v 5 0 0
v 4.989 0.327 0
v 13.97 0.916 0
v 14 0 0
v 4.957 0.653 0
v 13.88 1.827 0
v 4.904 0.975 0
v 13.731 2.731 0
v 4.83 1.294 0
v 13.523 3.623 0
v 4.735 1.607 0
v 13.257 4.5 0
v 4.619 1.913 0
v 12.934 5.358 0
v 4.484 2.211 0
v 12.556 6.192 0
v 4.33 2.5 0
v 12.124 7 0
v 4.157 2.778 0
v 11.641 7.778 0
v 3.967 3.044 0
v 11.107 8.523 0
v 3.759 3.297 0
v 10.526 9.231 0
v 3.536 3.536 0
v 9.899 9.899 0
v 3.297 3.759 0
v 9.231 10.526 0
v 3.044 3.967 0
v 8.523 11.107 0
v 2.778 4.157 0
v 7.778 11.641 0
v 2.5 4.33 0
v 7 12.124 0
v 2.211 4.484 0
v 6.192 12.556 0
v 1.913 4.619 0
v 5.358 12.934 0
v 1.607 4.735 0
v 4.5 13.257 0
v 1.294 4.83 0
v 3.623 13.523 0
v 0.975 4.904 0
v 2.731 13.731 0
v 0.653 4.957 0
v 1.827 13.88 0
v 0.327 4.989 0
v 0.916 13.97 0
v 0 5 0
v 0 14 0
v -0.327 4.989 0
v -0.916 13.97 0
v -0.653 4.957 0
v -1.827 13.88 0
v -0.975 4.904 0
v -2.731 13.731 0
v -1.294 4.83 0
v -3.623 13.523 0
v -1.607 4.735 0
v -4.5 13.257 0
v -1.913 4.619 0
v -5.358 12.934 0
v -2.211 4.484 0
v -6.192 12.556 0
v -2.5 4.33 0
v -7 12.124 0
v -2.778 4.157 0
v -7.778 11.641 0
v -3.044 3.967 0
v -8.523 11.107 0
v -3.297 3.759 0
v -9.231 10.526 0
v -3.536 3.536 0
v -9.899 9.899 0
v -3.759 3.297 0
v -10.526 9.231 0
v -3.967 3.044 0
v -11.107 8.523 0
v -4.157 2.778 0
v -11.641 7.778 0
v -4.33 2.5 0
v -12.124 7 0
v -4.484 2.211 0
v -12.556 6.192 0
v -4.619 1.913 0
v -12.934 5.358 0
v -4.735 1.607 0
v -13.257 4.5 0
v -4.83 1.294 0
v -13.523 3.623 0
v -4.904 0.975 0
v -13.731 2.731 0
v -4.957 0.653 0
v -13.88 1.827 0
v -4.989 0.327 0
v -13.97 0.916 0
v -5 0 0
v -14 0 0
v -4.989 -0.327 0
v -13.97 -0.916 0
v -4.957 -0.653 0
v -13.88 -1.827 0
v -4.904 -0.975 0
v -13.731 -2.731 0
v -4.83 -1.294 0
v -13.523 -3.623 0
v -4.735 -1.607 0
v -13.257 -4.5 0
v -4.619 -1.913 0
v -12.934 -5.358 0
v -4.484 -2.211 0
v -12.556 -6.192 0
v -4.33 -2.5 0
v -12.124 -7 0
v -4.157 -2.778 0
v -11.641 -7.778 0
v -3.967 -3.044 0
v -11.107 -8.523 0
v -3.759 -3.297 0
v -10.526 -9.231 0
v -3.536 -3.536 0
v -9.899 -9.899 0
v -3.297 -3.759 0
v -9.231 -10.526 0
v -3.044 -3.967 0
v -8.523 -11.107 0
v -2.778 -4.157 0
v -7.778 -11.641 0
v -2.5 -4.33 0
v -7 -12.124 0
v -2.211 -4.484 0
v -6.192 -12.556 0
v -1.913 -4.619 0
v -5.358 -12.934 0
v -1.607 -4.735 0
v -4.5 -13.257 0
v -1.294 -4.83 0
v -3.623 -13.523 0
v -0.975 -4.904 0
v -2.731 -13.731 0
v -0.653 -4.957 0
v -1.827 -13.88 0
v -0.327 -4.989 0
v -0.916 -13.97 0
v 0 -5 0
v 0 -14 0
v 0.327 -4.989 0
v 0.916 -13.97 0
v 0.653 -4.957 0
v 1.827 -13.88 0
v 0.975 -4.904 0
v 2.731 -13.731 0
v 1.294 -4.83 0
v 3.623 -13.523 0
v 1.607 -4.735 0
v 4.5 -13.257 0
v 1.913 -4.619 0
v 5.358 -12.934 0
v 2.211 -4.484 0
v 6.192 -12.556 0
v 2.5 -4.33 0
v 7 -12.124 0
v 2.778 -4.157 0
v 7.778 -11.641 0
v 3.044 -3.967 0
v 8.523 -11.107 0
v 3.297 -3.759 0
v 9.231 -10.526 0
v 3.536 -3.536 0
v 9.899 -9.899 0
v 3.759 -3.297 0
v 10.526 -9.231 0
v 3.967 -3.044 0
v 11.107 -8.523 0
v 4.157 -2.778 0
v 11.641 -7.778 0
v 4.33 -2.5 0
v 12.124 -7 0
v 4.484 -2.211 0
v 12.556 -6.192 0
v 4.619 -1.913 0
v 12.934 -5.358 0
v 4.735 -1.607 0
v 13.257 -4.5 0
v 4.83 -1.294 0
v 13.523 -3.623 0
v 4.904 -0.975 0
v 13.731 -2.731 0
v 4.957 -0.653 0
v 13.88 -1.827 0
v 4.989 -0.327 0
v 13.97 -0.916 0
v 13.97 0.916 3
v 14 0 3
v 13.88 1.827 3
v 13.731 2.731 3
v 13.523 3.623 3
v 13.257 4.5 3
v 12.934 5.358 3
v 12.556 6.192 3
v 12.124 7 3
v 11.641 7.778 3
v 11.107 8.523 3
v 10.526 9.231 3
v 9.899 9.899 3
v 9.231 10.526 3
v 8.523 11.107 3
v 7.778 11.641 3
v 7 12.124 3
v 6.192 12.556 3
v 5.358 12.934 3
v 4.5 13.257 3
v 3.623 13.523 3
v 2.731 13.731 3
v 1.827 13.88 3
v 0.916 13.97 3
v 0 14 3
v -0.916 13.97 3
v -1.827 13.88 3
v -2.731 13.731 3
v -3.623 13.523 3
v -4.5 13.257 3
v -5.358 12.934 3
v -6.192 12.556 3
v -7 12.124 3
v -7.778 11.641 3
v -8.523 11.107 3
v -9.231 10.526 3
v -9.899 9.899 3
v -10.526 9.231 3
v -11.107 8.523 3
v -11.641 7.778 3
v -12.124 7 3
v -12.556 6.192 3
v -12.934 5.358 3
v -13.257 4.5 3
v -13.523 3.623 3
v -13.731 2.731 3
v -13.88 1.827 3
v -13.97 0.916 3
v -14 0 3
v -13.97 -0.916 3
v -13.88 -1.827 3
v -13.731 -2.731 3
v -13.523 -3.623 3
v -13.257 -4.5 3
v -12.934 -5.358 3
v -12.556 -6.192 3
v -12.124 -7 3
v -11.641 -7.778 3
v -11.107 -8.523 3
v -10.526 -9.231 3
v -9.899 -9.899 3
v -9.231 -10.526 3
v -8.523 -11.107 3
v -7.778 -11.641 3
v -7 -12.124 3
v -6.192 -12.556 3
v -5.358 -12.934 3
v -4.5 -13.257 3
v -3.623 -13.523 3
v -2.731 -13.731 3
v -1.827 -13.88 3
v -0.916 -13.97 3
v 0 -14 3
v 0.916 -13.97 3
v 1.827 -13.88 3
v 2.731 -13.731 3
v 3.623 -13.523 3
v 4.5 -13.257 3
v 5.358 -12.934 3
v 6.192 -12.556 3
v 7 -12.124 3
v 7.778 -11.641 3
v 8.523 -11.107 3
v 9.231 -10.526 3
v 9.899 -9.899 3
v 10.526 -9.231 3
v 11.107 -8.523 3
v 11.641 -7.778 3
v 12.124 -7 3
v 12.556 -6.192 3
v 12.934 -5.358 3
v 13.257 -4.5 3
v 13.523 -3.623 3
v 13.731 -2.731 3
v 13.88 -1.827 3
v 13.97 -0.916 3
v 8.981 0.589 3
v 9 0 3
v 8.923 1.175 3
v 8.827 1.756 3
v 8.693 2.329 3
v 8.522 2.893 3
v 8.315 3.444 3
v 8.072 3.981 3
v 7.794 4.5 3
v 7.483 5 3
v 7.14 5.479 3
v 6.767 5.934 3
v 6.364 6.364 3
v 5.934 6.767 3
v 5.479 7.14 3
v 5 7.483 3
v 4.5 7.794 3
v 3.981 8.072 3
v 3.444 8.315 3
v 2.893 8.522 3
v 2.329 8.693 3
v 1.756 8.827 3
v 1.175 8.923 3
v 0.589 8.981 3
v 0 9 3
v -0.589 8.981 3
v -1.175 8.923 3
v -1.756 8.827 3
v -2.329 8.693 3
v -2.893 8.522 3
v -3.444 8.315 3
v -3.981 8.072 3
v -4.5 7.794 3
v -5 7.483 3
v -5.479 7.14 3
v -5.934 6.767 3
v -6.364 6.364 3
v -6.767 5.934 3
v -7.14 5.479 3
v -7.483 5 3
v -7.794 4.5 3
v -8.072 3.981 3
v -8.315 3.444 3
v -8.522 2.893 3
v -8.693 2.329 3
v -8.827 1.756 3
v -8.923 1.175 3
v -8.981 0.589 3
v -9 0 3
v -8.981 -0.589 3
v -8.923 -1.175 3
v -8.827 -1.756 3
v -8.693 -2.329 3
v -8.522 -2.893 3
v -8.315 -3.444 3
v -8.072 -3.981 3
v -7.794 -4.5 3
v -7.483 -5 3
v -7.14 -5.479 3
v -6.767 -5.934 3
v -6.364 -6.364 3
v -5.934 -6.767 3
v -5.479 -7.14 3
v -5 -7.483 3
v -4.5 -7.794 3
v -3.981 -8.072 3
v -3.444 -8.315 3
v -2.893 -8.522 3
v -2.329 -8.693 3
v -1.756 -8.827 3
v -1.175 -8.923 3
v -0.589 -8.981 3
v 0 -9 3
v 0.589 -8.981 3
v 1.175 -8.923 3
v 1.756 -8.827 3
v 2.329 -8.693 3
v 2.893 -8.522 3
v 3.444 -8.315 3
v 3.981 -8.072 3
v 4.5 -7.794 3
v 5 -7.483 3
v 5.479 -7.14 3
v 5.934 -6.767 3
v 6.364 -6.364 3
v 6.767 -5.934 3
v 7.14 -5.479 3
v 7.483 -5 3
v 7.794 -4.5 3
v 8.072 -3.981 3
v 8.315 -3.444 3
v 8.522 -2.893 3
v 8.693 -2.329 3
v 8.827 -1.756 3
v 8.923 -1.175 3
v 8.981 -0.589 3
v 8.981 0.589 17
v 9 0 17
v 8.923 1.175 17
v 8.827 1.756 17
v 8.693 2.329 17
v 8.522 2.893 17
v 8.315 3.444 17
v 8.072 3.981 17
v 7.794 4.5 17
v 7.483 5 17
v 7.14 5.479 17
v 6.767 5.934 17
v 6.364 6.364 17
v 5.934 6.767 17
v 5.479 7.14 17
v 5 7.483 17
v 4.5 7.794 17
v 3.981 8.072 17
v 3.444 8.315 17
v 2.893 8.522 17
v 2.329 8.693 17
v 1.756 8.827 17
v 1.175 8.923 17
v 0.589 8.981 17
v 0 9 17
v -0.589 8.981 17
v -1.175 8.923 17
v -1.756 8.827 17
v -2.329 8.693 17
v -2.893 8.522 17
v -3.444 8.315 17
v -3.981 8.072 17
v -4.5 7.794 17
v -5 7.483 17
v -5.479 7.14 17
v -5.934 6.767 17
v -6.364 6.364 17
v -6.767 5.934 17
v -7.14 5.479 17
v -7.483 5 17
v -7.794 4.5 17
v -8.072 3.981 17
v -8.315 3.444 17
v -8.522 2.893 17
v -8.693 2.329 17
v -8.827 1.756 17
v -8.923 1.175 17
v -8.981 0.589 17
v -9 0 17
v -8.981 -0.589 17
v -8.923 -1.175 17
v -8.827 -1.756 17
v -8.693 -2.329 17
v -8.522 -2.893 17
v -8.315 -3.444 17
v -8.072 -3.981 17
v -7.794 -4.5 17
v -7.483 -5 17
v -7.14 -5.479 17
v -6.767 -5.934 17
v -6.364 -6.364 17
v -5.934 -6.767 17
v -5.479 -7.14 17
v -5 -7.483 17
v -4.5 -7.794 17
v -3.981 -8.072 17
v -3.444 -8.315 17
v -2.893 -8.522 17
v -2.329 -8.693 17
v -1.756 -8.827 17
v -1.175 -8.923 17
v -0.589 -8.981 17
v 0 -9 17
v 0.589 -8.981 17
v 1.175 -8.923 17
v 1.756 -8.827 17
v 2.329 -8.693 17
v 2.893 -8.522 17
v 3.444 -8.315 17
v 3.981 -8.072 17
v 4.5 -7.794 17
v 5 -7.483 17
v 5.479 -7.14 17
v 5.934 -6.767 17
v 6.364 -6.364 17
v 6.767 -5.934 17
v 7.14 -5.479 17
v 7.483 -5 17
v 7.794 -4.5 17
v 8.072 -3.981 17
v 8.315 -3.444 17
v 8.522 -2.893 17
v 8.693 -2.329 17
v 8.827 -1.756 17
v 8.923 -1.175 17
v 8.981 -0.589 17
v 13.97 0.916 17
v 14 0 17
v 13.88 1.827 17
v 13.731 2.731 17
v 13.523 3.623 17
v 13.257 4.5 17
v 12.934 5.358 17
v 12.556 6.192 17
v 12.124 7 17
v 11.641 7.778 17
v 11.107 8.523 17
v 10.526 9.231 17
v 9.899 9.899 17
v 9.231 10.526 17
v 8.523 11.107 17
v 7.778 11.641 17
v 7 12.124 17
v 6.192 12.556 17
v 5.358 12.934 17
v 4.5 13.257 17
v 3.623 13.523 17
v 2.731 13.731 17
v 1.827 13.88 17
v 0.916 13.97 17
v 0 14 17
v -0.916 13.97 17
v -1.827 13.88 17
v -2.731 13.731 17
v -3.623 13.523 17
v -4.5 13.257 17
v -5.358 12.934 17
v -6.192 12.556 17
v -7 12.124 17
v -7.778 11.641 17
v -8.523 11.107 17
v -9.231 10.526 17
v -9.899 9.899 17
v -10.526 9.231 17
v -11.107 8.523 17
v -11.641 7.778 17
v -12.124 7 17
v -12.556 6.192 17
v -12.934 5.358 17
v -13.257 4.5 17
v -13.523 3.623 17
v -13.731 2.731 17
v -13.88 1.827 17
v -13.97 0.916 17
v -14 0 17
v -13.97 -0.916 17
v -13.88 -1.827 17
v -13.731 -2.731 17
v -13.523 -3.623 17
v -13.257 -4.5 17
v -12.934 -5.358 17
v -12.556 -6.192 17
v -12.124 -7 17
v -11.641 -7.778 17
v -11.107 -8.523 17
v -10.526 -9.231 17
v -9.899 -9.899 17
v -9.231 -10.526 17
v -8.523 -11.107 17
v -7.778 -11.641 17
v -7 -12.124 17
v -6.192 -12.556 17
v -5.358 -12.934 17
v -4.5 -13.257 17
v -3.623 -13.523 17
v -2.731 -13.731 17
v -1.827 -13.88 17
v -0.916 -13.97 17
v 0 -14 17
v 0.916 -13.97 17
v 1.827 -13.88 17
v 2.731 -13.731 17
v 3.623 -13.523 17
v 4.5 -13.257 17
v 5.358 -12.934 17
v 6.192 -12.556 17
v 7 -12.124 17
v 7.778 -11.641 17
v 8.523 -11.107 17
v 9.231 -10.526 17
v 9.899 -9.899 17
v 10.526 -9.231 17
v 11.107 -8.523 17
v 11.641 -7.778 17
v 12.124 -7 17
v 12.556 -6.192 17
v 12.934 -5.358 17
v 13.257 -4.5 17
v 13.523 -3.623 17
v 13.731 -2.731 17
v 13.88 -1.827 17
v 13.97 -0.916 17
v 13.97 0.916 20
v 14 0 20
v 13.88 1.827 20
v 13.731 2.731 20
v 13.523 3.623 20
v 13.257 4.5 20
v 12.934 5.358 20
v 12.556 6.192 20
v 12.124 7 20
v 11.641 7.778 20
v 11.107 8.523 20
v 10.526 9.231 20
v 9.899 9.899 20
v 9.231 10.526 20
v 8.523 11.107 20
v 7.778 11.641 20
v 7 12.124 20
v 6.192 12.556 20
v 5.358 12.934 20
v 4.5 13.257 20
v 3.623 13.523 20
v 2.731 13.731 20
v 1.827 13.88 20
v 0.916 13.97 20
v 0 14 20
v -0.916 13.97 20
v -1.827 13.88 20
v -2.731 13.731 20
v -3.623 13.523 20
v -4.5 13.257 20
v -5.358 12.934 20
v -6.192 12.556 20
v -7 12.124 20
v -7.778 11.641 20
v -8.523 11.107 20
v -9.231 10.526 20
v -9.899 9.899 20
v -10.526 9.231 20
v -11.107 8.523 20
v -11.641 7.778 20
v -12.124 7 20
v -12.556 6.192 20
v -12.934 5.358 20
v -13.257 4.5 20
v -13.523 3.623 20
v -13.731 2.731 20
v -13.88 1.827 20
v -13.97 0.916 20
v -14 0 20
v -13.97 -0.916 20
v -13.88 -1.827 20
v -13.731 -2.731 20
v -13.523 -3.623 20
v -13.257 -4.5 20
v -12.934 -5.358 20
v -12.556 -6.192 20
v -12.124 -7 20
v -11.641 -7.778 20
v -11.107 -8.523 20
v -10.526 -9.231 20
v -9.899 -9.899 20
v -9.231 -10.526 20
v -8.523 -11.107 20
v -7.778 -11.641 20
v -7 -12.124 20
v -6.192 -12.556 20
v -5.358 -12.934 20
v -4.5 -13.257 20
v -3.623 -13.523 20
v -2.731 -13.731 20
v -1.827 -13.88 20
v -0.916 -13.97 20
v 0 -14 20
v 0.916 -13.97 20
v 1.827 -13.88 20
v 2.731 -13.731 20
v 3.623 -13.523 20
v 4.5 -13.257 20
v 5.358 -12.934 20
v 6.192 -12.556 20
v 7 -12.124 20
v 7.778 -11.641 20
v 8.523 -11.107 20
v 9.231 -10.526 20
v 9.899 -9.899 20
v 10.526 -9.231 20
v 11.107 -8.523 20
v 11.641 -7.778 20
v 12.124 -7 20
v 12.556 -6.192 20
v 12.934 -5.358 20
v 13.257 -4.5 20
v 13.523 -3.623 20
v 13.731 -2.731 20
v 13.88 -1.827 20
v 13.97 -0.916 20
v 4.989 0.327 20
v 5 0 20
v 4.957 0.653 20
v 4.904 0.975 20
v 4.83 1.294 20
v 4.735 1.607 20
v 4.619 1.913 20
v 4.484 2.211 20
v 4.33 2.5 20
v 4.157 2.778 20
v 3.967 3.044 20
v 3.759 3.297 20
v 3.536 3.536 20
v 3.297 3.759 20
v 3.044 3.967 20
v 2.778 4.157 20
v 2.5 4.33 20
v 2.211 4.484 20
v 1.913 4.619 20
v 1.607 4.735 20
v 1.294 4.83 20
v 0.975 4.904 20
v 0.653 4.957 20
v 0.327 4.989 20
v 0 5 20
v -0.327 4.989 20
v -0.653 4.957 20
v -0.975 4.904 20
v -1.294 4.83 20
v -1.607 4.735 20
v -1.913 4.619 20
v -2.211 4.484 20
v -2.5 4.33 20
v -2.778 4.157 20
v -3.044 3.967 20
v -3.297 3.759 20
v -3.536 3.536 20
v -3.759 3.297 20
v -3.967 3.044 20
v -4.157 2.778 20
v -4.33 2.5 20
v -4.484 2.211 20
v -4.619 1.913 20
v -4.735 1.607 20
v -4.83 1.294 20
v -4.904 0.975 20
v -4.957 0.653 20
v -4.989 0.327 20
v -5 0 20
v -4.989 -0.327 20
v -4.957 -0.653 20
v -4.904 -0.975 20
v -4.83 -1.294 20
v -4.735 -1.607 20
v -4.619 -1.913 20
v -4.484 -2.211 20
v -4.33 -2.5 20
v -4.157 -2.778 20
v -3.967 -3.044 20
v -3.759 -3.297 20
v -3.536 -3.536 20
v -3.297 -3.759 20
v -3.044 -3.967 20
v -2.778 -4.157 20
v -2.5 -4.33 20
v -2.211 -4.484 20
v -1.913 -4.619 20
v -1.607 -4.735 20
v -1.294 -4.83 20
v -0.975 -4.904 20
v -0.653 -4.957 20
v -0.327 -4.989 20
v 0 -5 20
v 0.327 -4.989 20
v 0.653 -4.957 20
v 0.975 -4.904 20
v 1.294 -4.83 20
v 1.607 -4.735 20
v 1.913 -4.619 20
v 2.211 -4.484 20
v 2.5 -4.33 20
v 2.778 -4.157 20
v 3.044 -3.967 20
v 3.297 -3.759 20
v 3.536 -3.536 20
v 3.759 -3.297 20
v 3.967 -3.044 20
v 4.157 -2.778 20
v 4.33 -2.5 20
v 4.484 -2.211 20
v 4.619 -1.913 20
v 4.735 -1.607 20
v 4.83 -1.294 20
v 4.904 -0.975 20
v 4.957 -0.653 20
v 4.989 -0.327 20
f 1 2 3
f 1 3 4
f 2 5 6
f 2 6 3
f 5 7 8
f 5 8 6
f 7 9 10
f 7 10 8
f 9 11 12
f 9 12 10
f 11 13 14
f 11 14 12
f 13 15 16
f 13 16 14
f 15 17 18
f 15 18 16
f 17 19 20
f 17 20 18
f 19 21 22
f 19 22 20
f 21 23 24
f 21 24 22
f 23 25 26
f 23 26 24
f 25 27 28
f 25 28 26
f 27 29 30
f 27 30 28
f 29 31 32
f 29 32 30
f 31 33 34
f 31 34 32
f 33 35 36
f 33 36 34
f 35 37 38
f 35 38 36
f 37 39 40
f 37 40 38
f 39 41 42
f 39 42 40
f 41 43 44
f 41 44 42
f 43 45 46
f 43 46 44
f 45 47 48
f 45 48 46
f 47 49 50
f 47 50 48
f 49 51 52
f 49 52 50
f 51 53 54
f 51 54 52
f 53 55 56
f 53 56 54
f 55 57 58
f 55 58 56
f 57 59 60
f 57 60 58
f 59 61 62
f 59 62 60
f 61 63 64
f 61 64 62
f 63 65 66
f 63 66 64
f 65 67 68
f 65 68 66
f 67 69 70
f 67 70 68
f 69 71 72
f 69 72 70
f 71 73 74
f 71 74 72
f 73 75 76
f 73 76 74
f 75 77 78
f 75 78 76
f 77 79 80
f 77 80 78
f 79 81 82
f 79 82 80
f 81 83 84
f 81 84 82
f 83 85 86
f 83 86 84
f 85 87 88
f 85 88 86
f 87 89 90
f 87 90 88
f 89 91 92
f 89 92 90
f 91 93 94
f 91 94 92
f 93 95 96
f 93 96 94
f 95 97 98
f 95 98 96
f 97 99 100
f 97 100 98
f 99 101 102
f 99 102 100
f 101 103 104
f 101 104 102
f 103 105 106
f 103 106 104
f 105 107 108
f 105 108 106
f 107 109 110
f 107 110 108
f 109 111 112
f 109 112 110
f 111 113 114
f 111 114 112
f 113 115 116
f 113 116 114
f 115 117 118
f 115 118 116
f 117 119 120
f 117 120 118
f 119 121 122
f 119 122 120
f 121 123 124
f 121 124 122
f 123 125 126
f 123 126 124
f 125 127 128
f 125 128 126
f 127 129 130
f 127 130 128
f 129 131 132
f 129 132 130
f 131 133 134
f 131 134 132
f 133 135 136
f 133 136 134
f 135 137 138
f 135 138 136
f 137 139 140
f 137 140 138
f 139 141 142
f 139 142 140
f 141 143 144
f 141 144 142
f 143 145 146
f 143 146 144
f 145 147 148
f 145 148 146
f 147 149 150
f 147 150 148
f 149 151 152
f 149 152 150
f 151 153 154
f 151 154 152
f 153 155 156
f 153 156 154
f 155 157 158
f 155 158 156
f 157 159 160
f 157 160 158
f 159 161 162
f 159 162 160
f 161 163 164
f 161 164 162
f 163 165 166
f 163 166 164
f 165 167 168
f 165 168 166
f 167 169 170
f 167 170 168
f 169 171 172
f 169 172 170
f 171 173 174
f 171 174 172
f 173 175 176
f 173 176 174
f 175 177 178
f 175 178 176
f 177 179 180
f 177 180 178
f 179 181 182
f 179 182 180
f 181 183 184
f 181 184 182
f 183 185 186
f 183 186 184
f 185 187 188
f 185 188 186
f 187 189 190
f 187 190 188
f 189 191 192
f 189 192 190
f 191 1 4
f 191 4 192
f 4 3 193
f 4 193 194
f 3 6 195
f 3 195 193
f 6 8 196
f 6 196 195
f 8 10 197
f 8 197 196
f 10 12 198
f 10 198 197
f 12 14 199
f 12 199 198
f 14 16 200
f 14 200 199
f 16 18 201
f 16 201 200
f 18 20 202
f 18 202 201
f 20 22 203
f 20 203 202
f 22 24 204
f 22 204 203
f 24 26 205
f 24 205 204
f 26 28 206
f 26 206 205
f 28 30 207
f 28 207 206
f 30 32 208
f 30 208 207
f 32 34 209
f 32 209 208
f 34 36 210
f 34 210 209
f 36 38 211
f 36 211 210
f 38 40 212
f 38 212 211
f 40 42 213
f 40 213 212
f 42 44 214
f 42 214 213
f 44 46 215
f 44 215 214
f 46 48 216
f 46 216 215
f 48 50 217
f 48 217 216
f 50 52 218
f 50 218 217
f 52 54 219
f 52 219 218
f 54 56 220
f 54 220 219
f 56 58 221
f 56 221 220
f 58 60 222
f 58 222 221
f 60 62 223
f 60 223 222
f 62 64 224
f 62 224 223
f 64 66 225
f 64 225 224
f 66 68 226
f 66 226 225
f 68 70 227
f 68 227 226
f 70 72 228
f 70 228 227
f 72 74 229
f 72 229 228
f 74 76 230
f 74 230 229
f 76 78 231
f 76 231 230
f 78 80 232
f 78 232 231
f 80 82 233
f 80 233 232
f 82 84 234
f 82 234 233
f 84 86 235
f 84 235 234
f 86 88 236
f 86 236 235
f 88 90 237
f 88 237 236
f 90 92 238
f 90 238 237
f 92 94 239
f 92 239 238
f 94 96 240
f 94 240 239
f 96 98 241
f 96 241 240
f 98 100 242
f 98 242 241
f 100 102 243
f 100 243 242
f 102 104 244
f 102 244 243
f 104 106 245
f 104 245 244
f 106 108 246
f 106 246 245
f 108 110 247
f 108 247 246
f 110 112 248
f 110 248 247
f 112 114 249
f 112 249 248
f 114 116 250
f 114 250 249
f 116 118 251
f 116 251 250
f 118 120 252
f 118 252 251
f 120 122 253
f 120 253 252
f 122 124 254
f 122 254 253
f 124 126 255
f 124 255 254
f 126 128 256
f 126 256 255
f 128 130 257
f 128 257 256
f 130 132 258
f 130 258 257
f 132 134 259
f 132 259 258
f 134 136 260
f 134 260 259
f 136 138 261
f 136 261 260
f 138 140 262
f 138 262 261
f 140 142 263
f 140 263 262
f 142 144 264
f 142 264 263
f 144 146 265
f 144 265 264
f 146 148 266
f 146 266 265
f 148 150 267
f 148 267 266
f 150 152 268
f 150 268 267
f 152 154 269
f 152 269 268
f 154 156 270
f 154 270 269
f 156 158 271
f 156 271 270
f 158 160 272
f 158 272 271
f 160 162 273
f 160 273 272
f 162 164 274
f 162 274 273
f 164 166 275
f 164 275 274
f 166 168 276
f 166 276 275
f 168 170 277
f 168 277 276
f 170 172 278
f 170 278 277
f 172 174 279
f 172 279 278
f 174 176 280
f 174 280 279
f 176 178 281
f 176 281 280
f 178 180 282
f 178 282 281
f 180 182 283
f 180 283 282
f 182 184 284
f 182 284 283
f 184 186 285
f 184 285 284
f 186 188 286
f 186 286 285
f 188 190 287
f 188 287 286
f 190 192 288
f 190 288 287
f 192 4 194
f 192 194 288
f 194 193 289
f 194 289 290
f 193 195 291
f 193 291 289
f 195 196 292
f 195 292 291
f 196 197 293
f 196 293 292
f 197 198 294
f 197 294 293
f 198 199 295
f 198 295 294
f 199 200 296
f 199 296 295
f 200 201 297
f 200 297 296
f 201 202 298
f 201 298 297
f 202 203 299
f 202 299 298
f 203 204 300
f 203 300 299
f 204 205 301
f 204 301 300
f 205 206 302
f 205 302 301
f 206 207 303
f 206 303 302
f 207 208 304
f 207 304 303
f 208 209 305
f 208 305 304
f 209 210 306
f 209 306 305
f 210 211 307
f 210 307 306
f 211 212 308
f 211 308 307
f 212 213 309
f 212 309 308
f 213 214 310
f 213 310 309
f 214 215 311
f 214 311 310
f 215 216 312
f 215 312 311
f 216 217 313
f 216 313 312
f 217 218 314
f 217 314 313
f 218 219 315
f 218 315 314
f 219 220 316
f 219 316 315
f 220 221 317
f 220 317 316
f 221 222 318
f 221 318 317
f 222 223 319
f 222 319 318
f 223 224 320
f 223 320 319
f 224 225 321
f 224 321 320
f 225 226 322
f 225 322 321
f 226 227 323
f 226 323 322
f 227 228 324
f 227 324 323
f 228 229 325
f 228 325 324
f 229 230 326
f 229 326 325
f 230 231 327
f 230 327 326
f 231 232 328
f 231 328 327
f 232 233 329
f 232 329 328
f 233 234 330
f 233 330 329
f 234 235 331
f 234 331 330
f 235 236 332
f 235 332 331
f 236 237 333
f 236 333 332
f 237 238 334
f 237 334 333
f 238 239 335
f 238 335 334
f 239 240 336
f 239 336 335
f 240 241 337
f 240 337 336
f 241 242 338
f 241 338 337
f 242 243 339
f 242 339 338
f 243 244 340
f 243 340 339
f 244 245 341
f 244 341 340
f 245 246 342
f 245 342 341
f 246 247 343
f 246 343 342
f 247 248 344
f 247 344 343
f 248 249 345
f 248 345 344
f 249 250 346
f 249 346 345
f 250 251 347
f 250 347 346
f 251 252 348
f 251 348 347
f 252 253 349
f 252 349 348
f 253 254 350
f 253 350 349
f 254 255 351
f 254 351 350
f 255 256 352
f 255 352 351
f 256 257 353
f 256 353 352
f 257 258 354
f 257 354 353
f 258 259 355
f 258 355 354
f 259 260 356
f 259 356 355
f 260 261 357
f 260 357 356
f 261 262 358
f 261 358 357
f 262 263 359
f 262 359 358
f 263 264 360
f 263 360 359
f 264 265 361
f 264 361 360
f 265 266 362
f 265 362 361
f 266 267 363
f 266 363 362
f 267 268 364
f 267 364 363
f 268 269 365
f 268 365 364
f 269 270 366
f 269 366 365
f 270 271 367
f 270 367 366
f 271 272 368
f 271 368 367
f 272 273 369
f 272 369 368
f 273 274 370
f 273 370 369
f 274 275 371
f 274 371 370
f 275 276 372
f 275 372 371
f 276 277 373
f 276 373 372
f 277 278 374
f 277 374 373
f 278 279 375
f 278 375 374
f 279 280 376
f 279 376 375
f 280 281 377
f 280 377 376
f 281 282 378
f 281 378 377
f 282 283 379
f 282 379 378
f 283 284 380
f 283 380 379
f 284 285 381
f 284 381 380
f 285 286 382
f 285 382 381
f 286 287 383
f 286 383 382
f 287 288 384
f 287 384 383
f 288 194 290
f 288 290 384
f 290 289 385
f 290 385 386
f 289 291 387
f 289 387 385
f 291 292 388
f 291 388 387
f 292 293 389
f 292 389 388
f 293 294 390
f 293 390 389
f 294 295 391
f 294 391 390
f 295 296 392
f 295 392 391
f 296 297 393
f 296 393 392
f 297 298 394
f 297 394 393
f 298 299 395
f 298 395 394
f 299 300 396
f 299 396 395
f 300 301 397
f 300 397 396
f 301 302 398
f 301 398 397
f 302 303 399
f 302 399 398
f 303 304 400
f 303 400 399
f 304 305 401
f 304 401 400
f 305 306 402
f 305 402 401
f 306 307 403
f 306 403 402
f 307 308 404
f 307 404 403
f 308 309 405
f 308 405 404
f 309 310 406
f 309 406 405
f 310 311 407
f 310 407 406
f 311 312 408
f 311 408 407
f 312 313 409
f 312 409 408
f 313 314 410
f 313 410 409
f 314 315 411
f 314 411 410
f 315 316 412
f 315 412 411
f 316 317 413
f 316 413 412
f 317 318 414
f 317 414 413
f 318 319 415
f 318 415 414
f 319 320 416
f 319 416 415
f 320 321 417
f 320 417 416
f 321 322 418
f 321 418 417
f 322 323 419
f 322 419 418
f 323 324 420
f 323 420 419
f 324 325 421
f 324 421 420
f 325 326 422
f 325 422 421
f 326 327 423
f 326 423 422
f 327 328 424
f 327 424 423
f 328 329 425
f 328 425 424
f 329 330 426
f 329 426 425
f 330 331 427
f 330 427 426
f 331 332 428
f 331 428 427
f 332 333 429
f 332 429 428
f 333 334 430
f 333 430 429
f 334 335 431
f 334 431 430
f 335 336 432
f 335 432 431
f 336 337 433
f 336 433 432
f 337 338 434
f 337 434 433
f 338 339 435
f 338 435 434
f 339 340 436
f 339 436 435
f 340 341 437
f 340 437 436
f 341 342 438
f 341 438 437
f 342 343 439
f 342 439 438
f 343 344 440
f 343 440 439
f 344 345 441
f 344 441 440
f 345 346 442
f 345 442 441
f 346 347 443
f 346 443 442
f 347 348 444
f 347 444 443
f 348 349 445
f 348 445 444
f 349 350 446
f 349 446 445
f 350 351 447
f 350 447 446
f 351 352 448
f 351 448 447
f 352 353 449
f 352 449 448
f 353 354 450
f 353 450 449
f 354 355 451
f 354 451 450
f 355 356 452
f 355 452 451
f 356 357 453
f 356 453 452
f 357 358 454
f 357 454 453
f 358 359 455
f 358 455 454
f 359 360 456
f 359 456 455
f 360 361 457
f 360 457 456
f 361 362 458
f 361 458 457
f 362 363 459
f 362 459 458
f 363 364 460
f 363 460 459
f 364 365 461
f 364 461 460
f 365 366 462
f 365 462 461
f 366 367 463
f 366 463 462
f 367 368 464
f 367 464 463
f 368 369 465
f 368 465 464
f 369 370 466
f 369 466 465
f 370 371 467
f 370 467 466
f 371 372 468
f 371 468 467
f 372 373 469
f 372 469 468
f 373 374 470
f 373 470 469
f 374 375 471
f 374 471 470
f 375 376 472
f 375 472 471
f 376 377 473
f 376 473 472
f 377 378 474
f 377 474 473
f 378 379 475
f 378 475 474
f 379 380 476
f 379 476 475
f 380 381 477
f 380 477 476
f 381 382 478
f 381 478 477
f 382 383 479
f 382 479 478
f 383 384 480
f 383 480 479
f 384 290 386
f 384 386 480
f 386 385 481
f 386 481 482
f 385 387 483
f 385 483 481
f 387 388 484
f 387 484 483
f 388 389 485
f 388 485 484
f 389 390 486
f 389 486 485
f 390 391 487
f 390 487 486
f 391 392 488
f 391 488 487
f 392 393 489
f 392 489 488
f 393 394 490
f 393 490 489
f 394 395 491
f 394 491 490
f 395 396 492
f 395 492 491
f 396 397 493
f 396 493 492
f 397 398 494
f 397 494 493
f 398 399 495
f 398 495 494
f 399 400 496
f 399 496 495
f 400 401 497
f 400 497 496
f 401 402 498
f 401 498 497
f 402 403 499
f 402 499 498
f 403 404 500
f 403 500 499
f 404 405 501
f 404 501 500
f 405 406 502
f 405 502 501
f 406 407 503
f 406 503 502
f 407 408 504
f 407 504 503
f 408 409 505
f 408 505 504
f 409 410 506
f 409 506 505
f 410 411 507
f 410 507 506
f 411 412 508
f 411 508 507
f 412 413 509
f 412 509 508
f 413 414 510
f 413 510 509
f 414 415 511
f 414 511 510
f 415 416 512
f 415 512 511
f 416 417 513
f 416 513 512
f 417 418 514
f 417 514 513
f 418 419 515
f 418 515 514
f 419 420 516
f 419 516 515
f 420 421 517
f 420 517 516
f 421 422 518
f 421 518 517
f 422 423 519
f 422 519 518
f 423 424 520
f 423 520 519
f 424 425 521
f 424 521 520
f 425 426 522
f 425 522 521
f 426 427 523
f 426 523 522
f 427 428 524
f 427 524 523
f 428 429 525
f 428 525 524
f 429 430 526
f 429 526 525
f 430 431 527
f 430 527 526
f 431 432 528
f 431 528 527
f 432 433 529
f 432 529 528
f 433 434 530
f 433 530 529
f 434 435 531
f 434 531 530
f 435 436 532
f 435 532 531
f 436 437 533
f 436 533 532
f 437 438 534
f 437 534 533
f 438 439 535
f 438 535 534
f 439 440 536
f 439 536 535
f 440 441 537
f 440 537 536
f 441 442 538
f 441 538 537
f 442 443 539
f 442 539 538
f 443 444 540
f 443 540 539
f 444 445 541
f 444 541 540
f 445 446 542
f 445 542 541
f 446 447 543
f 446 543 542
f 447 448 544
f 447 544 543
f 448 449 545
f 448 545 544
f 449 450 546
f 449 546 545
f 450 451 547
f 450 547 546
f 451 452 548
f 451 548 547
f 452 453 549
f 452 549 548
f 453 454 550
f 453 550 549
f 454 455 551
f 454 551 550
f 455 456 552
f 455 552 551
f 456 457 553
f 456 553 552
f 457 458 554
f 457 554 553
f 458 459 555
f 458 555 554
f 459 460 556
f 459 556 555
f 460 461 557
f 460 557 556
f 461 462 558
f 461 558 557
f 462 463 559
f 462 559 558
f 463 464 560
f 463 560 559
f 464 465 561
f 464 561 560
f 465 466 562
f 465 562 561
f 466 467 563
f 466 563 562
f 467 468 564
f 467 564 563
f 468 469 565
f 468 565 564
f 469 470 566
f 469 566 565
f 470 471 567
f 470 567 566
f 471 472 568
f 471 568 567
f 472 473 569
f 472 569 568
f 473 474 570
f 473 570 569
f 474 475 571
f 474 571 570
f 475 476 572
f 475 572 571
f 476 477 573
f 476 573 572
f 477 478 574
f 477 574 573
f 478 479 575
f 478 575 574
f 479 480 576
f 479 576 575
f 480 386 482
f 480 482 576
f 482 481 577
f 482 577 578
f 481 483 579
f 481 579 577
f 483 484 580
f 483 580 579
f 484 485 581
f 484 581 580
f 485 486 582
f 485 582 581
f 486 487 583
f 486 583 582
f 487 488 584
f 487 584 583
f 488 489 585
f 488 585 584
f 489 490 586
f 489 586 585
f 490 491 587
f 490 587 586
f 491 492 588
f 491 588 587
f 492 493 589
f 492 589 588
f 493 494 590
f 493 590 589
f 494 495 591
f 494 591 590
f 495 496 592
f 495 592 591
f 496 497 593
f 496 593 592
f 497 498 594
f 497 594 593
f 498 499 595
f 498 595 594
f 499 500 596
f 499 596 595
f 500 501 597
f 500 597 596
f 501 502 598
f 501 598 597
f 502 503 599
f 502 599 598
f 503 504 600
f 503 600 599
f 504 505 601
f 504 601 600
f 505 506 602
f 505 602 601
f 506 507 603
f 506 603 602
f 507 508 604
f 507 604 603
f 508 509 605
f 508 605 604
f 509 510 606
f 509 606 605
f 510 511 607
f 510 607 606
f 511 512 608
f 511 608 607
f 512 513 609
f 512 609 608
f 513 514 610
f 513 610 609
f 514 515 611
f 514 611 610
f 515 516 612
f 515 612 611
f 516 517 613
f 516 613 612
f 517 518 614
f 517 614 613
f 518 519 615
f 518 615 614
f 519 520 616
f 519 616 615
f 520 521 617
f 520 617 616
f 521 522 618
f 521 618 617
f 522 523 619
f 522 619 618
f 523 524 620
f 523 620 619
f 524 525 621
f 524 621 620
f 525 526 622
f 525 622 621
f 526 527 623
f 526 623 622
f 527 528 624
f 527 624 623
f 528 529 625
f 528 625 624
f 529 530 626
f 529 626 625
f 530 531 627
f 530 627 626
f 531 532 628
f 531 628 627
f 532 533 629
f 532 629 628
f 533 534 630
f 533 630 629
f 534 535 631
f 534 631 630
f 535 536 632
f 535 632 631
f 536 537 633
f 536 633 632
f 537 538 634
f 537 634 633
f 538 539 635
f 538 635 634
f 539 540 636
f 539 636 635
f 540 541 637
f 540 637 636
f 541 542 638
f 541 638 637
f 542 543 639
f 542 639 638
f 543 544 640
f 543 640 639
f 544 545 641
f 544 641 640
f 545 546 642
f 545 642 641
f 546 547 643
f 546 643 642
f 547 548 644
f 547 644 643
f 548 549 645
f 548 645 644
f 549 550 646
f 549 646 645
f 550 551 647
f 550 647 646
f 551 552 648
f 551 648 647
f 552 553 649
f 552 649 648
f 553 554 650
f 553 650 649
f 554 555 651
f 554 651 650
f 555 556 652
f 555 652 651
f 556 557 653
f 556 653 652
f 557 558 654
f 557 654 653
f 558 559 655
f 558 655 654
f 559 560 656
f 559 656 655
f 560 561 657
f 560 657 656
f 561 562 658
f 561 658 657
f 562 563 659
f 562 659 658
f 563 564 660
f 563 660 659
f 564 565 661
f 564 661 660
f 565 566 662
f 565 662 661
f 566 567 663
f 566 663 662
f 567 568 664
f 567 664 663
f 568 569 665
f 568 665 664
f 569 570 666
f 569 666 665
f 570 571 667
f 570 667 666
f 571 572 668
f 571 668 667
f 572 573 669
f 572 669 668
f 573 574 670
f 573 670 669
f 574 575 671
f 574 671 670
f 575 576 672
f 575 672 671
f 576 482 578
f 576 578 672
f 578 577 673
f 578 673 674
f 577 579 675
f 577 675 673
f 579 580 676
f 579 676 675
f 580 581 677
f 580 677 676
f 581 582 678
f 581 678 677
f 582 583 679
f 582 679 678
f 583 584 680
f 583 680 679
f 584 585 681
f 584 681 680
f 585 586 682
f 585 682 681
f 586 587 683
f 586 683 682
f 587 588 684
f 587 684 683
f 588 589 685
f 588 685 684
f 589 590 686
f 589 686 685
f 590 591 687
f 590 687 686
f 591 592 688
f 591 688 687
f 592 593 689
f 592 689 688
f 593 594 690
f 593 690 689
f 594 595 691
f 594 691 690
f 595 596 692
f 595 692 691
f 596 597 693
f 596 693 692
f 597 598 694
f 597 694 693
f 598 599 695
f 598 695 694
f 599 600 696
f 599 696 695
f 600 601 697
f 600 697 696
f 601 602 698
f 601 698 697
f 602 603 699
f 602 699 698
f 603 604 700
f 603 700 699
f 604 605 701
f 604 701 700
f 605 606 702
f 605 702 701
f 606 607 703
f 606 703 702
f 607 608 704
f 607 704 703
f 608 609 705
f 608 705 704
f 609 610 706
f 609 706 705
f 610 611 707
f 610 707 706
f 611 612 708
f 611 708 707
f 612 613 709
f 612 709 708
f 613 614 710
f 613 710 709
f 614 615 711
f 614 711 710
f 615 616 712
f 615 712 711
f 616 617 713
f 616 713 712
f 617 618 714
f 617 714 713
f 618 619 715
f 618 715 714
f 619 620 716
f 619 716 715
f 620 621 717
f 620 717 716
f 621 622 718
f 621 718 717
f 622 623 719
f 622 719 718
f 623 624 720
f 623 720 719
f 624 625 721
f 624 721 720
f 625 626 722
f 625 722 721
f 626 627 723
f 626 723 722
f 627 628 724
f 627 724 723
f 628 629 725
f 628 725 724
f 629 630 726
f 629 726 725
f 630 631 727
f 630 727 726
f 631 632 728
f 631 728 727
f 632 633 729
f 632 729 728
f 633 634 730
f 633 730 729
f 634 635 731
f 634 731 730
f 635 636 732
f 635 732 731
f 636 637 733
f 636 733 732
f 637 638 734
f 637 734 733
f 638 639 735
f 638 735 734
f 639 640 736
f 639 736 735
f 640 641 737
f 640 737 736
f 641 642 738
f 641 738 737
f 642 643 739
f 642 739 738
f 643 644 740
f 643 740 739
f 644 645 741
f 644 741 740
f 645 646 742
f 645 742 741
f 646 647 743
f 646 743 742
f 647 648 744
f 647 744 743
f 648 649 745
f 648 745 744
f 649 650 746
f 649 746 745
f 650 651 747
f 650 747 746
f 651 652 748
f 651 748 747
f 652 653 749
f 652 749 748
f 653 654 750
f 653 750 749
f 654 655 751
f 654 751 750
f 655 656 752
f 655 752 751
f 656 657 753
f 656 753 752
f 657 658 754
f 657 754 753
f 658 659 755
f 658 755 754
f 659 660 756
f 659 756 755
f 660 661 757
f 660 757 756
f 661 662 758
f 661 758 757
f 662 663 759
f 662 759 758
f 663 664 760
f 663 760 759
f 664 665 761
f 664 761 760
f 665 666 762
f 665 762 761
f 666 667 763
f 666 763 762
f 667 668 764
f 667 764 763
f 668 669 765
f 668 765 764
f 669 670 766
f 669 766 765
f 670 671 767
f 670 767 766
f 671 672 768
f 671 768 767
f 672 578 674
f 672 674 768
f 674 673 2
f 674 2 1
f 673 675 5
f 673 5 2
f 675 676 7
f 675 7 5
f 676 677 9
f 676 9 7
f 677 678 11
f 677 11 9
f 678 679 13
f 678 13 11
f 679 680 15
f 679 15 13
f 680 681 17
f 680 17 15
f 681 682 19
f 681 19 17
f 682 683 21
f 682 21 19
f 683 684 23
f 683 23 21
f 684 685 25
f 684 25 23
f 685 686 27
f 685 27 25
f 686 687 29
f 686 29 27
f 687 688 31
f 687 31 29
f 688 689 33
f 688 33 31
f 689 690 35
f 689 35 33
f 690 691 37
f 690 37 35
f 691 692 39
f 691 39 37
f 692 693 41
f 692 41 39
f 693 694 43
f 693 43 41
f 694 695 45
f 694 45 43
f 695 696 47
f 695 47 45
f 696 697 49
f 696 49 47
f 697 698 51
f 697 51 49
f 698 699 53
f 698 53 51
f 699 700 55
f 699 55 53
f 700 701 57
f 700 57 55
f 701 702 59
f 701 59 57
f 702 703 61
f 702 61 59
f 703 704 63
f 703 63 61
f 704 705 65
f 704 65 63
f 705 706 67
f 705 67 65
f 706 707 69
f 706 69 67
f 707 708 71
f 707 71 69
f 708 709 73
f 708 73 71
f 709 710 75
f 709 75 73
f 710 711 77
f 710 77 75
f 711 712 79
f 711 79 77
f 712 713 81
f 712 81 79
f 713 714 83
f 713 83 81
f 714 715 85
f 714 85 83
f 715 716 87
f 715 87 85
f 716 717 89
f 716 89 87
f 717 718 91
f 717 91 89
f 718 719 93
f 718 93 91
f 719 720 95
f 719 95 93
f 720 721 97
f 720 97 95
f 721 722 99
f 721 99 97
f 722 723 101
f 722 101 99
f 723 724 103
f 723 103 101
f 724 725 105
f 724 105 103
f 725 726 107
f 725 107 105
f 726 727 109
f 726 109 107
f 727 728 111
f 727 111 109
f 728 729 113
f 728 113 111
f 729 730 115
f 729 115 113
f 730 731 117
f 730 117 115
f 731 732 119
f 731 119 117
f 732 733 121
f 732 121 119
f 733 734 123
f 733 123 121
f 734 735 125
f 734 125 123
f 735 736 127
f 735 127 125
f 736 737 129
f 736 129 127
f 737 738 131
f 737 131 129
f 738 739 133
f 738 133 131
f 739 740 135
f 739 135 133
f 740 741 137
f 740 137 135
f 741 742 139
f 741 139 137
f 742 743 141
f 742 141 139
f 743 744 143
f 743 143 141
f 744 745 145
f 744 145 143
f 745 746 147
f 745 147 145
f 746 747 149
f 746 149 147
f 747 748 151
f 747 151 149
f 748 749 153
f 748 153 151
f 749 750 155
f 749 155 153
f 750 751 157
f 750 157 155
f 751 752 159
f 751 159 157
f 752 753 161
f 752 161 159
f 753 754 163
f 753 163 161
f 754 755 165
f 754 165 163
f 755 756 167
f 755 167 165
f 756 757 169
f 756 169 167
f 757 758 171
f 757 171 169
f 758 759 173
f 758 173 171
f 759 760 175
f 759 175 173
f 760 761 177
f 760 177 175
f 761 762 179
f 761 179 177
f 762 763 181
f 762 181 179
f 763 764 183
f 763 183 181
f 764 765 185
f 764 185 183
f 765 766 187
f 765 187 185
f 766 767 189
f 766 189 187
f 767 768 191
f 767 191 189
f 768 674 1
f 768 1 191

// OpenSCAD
// Original MechIntel educational model. CC0-1.0. Units: mm.
// Not a standardized or load-rated component.
$fn=96;
// Section points: [radius, height], mm. Edit to change the profile.
section=[[5, 0], [14, 0], [14, 3], [9, 3], [9, 17], [14, 17], [14, 20], [5, 20]];
rotate_extrude($fn=96) polygon(points=section);
